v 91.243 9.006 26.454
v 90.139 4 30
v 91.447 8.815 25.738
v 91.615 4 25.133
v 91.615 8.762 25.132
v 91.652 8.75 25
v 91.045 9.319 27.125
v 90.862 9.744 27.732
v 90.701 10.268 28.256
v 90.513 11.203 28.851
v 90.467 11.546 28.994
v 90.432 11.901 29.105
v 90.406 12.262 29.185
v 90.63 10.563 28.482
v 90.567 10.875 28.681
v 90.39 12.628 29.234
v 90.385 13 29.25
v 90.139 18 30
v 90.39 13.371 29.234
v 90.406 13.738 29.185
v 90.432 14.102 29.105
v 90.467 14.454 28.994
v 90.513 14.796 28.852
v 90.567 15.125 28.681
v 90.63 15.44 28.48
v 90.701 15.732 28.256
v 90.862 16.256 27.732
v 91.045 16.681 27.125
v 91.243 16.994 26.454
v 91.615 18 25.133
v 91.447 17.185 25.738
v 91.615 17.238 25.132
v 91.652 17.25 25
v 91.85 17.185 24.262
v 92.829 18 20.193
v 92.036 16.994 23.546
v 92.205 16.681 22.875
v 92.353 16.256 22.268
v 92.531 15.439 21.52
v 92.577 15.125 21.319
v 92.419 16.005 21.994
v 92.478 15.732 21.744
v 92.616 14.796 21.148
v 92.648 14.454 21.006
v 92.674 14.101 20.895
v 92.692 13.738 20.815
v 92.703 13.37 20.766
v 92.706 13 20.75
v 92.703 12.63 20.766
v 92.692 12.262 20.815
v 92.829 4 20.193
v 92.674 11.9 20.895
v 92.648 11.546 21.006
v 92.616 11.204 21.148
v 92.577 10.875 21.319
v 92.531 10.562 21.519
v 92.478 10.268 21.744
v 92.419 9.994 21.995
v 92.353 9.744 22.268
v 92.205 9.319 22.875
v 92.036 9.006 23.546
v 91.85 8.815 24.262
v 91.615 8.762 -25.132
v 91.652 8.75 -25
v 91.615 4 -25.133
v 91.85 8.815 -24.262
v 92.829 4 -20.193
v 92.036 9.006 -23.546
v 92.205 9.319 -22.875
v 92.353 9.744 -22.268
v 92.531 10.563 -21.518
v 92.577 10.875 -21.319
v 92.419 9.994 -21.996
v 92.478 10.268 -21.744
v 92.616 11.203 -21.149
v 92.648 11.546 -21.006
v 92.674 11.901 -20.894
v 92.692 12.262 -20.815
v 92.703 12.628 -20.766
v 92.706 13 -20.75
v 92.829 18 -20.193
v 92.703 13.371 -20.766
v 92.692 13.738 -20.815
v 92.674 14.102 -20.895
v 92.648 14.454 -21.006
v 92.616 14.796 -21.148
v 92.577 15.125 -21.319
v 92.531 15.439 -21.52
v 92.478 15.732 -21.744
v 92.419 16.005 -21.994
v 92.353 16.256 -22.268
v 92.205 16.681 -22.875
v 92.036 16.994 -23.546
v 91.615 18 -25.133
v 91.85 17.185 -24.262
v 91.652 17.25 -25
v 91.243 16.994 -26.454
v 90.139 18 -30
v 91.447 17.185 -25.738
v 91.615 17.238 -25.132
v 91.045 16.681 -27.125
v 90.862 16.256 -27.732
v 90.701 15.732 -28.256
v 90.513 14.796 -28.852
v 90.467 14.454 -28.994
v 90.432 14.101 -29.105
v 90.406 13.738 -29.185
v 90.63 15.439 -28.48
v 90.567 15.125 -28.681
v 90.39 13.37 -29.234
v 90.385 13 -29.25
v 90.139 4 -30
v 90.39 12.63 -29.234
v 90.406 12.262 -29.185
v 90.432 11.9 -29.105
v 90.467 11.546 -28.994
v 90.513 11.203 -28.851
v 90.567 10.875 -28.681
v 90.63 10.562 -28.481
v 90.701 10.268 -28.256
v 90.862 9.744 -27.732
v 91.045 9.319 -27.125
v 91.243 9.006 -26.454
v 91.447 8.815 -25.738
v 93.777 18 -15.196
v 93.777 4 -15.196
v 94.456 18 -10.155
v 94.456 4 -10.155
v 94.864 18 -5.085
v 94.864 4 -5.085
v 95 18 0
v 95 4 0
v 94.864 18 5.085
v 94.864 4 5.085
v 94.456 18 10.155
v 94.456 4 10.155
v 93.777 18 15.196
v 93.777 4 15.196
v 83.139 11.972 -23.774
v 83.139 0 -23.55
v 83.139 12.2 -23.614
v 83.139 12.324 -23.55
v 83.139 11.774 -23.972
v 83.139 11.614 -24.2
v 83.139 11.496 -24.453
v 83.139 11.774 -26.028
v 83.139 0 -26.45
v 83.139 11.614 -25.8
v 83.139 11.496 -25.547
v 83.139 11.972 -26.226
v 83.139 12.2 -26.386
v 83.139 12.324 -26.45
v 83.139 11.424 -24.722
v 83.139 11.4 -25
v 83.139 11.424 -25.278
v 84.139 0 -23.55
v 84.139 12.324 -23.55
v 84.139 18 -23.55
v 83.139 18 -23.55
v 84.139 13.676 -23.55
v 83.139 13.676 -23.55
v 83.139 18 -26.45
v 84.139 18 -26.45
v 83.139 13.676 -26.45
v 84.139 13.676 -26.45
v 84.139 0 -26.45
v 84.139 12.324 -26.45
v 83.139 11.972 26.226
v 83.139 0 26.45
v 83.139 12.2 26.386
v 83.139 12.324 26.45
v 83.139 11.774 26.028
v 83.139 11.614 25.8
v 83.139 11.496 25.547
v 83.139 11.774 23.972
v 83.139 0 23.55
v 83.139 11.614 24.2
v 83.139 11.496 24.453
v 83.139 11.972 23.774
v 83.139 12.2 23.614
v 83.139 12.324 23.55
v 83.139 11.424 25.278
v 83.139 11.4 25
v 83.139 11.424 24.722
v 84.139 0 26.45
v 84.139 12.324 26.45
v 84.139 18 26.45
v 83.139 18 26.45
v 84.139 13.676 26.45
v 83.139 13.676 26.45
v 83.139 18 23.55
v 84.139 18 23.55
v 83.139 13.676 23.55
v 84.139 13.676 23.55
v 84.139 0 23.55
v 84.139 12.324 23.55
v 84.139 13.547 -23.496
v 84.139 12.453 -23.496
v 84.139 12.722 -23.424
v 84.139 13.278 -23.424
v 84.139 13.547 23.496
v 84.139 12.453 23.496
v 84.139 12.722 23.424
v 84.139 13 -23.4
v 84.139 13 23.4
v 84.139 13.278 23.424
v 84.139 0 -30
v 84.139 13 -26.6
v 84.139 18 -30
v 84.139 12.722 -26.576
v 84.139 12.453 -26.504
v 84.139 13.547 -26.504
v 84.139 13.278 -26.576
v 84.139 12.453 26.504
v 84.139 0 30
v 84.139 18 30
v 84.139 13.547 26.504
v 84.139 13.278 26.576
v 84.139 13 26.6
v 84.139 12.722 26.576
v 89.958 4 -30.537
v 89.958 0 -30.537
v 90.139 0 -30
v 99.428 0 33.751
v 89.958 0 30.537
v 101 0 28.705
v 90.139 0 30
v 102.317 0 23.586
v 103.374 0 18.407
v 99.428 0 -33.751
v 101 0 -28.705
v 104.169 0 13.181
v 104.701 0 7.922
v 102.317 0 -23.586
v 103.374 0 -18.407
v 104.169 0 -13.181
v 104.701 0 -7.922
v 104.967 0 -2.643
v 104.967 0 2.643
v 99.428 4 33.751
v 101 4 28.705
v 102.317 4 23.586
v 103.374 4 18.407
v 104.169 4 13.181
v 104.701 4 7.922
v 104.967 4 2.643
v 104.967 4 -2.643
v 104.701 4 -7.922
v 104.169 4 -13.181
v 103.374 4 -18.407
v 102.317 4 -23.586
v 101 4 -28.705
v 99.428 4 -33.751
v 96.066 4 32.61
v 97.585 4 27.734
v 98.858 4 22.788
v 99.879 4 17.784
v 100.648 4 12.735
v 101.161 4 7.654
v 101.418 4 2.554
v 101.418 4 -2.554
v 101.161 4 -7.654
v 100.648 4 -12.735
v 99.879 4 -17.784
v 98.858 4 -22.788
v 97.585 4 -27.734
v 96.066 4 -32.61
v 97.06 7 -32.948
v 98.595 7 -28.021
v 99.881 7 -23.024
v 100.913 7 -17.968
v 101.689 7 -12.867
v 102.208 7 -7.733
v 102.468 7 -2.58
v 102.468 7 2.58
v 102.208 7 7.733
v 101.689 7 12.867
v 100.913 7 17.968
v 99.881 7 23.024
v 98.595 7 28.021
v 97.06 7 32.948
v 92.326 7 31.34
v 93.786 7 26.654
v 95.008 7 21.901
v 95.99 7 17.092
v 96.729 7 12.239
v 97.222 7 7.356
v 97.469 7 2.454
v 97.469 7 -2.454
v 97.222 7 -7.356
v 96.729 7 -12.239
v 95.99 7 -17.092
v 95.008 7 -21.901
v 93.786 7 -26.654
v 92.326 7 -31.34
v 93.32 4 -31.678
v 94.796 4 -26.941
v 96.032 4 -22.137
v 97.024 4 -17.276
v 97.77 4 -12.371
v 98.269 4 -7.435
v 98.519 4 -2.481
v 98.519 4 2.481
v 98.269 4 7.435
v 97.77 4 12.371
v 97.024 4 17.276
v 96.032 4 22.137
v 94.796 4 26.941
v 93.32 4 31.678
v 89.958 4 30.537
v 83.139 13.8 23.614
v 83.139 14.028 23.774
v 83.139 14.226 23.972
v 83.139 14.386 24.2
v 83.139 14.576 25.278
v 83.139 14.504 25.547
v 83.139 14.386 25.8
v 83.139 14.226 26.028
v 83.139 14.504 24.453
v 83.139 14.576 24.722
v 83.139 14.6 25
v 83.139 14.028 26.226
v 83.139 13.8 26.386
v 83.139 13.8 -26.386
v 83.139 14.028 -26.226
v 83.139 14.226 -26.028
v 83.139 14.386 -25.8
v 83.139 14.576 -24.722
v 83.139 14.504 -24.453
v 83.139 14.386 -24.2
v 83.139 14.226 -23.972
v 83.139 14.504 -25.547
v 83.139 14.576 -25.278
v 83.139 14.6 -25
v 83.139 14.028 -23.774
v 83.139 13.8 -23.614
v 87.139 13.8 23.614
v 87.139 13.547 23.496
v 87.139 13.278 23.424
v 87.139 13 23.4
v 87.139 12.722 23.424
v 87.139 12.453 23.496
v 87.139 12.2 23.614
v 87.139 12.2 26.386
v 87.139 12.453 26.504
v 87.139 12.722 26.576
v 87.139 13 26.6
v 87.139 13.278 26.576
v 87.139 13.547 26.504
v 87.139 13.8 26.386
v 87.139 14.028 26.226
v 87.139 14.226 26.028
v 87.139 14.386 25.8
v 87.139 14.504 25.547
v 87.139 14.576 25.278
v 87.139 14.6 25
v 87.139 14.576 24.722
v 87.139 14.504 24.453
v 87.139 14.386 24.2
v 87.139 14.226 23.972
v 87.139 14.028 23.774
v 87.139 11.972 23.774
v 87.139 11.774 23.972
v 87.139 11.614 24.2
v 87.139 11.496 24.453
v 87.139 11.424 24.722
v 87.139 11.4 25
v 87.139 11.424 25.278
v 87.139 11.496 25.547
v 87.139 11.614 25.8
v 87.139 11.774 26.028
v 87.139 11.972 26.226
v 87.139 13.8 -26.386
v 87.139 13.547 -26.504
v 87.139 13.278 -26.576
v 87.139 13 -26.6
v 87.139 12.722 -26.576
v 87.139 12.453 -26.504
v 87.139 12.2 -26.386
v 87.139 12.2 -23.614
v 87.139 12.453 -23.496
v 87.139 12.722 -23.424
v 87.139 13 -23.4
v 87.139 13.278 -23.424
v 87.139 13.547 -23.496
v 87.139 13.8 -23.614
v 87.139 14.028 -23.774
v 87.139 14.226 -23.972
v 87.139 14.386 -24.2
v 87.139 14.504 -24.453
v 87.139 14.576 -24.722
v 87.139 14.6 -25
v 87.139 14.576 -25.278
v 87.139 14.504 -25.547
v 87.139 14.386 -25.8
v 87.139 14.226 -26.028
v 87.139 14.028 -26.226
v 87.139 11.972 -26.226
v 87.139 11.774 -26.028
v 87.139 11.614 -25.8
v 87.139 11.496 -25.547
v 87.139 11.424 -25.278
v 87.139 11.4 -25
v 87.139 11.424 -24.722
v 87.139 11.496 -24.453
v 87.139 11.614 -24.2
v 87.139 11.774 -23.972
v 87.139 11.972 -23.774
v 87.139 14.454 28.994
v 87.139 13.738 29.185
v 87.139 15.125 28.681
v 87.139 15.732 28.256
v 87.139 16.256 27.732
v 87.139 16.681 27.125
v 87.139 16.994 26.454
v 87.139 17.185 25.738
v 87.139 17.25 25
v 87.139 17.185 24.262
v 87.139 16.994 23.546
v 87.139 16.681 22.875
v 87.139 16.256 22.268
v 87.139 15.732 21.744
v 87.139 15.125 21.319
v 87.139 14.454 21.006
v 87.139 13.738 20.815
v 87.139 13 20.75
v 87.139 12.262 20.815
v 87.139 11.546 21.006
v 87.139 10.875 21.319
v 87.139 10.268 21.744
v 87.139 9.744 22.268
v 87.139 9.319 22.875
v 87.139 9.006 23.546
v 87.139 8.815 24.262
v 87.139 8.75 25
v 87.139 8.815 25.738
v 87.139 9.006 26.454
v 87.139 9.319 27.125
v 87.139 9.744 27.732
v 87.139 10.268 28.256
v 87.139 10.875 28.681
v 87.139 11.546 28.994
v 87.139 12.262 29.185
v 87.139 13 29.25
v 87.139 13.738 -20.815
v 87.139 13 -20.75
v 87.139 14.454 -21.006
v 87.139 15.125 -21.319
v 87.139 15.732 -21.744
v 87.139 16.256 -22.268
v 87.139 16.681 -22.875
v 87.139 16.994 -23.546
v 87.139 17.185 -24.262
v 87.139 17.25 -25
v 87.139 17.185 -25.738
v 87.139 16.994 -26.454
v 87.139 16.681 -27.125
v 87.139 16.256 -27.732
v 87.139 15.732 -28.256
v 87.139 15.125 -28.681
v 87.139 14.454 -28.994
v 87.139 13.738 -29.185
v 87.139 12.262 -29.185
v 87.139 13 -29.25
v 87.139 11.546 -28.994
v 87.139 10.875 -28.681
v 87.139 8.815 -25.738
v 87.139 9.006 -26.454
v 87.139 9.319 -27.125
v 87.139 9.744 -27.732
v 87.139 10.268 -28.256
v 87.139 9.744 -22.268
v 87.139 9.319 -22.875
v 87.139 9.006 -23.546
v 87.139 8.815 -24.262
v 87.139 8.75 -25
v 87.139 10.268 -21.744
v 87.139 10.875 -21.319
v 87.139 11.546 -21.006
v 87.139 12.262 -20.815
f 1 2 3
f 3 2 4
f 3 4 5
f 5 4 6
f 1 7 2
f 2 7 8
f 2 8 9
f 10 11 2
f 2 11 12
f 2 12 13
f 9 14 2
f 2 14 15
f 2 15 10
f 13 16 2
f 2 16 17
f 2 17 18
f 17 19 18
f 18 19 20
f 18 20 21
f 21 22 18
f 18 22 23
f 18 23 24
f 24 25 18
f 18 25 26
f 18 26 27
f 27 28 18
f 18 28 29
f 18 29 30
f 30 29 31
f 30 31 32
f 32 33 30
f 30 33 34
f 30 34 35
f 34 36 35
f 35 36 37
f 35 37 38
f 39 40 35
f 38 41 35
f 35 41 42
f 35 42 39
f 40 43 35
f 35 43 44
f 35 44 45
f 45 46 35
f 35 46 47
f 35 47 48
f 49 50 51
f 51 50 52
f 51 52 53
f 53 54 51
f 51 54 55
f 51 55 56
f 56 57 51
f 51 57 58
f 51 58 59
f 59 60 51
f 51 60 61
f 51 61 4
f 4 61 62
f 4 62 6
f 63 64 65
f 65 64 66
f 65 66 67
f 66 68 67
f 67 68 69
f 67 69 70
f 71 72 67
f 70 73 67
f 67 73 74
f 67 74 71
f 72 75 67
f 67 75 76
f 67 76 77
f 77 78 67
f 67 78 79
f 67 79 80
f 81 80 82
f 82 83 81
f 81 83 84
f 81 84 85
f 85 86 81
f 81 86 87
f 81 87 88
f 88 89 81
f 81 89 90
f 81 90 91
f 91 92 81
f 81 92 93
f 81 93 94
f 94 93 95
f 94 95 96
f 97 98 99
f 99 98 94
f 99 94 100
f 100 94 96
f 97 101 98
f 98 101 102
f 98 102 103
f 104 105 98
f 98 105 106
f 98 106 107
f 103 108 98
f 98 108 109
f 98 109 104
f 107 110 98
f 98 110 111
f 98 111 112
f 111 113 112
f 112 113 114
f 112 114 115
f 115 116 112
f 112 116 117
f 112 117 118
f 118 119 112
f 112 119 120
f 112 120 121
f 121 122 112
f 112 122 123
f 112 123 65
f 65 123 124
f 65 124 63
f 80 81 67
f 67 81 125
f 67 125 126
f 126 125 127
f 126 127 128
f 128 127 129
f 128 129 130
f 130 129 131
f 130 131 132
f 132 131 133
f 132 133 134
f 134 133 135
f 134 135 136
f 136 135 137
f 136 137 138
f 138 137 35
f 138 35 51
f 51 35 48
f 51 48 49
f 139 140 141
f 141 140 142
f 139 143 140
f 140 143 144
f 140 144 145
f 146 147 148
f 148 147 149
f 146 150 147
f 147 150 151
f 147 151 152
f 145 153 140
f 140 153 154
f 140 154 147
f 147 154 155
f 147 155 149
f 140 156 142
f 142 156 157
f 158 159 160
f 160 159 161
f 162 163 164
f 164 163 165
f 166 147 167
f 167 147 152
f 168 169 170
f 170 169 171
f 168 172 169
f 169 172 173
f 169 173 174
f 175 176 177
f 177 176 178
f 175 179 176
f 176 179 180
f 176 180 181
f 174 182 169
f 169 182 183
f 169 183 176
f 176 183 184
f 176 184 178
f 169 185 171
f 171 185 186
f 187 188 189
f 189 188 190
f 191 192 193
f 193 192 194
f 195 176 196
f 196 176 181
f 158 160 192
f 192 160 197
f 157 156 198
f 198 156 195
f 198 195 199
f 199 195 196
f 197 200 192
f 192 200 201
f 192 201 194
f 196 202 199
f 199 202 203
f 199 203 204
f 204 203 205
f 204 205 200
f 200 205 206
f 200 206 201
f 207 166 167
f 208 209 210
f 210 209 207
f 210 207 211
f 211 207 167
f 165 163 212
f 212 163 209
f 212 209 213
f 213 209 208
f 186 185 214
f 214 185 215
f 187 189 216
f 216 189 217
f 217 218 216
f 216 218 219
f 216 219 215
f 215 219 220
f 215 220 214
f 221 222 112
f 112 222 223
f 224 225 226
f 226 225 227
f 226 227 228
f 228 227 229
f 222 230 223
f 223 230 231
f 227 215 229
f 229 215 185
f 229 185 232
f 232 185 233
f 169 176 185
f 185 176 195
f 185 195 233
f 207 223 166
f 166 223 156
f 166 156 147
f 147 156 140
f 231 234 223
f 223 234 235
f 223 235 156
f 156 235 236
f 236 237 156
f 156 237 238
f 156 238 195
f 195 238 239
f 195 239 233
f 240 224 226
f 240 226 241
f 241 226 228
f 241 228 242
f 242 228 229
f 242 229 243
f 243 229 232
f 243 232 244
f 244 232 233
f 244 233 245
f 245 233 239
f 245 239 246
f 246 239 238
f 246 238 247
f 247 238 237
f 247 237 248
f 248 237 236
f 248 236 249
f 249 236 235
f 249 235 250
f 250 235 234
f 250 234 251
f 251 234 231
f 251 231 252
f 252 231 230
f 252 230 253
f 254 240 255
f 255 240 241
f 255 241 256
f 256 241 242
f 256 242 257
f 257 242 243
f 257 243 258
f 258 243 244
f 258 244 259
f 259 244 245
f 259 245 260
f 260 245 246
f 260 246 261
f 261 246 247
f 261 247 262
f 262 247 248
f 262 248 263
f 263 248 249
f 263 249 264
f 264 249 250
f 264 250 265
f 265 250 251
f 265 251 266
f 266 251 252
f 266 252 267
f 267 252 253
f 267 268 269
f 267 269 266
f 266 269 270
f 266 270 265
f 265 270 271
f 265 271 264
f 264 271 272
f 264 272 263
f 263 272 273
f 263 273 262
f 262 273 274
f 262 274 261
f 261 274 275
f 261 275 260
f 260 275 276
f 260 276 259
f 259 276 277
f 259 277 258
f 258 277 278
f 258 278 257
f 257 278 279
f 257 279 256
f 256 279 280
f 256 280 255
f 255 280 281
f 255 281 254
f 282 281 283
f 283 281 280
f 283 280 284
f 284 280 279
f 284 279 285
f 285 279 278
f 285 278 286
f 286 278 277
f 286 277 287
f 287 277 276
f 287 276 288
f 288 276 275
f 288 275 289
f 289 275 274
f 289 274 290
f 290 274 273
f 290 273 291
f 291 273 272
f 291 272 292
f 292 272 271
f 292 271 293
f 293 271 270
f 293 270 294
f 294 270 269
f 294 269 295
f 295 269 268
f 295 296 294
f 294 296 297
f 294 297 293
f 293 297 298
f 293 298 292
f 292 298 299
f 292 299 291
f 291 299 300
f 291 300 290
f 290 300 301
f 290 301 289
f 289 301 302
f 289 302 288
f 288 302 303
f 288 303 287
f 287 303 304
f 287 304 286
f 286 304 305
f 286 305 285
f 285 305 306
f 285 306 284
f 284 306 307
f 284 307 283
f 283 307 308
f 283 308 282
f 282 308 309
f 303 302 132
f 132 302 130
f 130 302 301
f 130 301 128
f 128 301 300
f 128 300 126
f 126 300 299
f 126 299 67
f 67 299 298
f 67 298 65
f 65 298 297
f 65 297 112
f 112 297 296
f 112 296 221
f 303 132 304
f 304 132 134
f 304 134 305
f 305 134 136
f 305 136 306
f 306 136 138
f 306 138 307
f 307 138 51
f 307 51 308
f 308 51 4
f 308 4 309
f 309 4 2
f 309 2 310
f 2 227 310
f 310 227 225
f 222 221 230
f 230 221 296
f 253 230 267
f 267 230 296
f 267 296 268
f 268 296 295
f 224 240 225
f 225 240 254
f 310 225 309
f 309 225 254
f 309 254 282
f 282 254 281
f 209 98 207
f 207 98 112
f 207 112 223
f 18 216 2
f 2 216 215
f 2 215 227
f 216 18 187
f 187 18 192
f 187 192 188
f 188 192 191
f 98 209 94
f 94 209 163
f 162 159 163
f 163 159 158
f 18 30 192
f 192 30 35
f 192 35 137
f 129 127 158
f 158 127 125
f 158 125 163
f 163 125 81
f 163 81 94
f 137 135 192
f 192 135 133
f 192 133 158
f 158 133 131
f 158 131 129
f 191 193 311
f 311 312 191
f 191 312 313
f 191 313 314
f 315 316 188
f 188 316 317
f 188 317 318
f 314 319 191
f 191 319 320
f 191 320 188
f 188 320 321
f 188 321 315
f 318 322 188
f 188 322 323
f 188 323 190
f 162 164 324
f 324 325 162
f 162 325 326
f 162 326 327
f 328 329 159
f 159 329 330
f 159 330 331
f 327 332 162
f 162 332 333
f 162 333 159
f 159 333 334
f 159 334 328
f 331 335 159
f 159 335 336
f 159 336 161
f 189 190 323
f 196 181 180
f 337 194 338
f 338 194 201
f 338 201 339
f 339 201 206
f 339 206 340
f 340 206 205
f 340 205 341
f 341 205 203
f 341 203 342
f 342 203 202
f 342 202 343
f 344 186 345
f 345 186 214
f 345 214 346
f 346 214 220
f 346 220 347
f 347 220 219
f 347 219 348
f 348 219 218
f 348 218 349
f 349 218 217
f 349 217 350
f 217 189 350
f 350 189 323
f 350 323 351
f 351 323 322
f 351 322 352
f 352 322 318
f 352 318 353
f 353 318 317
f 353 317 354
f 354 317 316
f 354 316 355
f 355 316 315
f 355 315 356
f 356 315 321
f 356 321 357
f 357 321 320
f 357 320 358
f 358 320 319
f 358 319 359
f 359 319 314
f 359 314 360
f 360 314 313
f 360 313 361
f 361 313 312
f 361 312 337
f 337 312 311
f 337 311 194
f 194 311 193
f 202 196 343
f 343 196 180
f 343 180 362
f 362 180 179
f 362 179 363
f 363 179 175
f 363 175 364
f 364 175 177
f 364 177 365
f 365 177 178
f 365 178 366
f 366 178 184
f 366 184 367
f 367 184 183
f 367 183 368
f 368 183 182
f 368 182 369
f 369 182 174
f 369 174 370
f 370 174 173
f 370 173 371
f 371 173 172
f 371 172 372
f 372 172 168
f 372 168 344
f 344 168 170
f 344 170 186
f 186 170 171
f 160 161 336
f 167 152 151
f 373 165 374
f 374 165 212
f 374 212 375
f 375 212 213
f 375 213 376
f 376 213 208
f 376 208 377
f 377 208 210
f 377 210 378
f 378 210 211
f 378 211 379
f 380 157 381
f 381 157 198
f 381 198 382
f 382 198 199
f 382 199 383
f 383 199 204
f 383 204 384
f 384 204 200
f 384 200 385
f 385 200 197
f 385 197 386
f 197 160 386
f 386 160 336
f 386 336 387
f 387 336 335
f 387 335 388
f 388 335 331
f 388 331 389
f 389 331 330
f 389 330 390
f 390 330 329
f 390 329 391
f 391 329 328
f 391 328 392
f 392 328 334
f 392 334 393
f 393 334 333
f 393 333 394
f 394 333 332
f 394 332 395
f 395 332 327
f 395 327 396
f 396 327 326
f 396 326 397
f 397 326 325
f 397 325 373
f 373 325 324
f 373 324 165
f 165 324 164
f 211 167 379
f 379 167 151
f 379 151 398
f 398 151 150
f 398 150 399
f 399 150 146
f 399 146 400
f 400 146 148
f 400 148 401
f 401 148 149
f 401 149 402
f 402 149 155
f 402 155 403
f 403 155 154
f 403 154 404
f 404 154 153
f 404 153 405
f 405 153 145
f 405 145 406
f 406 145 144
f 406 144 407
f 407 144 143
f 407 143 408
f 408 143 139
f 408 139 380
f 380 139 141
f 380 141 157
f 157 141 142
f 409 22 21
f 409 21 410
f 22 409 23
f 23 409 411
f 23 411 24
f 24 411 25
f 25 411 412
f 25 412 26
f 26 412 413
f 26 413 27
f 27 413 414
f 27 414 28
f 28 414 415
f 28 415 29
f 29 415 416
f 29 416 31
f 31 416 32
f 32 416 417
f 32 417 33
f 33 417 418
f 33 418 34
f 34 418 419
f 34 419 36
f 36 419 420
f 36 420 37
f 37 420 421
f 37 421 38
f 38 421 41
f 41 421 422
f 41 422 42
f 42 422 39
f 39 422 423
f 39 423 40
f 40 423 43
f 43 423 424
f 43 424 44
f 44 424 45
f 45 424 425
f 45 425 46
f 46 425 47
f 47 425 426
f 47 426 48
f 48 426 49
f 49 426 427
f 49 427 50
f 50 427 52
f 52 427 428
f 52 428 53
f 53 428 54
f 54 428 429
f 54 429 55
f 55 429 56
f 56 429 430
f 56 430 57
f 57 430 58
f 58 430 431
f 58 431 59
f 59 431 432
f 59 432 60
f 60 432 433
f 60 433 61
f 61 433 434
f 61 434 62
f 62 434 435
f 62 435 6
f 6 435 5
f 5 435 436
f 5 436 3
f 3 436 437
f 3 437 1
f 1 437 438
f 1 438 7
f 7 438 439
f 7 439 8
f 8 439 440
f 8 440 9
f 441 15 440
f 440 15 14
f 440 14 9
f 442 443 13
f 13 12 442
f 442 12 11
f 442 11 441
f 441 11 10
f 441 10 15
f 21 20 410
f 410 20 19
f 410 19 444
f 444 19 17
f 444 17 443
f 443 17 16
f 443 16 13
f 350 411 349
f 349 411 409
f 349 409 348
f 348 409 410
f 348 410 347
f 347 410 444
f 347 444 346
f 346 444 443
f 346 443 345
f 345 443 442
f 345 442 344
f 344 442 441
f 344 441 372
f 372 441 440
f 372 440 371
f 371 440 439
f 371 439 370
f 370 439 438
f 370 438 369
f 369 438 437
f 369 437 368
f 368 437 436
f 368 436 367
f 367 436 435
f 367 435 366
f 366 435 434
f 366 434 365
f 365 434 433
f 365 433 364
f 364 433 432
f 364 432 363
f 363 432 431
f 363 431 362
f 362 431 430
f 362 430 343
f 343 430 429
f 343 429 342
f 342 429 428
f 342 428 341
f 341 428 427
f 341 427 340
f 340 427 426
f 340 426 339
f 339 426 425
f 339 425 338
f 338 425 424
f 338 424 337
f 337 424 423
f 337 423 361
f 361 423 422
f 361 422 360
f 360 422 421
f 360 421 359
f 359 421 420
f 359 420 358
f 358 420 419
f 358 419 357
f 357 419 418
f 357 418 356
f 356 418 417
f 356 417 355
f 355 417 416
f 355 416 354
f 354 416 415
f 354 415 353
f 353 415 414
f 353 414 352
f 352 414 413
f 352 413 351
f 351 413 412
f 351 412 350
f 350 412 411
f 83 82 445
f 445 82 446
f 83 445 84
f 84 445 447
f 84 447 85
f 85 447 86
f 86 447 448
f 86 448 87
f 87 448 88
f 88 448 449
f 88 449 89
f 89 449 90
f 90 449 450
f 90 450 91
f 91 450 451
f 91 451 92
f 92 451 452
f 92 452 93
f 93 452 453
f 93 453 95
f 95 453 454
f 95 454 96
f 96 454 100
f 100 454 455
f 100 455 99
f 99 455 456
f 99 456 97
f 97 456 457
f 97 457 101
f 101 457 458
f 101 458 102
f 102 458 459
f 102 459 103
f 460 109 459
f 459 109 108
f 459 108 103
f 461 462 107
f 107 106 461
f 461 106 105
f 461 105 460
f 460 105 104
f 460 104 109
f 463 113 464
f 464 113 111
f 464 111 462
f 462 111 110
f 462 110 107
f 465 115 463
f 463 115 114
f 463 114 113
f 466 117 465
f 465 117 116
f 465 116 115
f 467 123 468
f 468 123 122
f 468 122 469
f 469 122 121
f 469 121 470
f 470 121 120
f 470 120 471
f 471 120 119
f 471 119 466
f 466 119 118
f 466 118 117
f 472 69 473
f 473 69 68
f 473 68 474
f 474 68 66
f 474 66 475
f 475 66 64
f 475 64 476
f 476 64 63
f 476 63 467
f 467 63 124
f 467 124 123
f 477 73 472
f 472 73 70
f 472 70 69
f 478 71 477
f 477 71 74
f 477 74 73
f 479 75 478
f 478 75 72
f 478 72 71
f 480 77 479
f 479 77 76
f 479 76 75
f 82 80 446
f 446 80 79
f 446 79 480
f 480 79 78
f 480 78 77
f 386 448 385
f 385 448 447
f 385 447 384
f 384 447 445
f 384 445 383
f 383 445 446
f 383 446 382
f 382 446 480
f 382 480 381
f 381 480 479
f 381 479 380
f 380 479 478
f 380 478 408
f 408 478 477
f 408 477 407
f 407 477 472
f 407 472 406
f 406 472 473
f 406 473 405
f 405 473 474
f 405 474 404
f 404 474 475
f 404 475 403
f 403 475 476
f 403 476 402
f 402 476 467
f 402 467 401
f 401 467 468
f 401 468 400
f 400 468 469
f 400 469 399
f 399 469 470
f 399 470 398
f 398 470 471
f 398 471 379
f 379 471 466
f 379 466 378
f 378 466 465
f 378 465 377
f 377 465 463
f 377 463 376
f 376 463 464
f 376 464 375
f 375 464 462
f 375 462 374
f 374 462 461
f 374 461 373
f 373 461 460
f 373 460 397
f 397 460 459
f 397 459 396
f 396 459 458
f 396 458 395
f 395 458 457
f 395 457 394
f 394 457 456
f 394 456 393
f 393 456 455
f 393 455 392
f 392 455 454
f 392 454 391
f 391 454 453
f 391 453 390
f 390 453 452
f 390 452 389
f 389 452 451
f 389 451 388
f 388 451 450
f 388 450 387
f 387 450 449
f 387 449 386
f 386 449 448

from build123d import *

# Parameters (mm, degrees)
MAIN_ANGLE             = 37.5
SUPPORT_DEPTH          = 18
SKETCH6_W              = 1
SKETCH6_H              = 2.9
MAKERBEAMSUPPORT_DEPTH = 18
SKETCH7_R              = 1.6
HOLESMAKERBEAM_DEPTH   = 22.861218113
SKETCH8_R              = 4.25
CUT_EXTRUDE1_DEPTH     = 7


with BuildPart() as part:
    # Sketch1 → Main (revolve, symmetric)
    with BuildSketch(Plane.XY) as main_sk:
        Polygon((105, 0), (105, 4), (101.45, 4), (102.5, 7), (97.5, 7), (98.55, 4), (95, 4), (95, 0), align=None)
    revolve(axis=Axis((0, -0.284703924, 0), (0, 1, 0)), revolution_arc=MAIN_ANGLE / 2)
    revolve(main_sk.sketch, axis=Axis((0, -0.284703924, 0), (0, -1, 0)), revolution_arc=MAIN_ANGLE / 2)

    # Sketch2 → Support (add)
    with BuildSketch(Plane(origin=(0, 0, 0), x_dir=(-1, 0, 0), z_dir=(0, -1, 0))):
        with BuildLine():
            Line((-90.138781887, -30), (-84.138781887, -30))
            Line((-84.138781887, -30), (-84.138781887, 30))
            Line((-84.138781887, 30), (-90.138781887, 30))
            ThreePointArc((-90.138781887, 30), (-95, 0), (-90.138781887, -30))
        make_face()
    extrude(amount=-SUPPORT_DEPTH)

    # Sketch6 → MakerBeamSupport (add)
    with BuildSketch(Plane(origin=(0, 0, 0), x_dir=(1, 0, 0), z_dir=(0, 1, 0))):
        with Locations((83.638781887, -25)):
            Rectangle(SKETCH6_W, SKETCH6_H)
        with Locations((83.638781887, 25)):
            Rectangle(SKETCH6_W, SKETCH6_H)
    extrude(amount=MAKERBEAMSUPPORT_DEPTH)

    # Sketch7 → HolesMakerBeam (cut, through all)
    with BuildSketch(Plane(origin=(83.138781887, 0, 0), x_dir=(0, 0, -1), z_dir=(1, 0, 0))):
        with Locations((-25, 13)):
            Circle(SKETCH7_R)
        with Locations((25, 13)):
            Circle(SKETCH7_R)
    extrude(amount=HOLESMAKERBEAM_DEPTH, mode=Mode.SUBTRACT)

    # Sketch8 → Cut-Extrude1 (cut)
    with BuildSketch(Plane.ZY.offset(-87.138781887)):
        with Locations((25, 13)):
            Circle(SKETCH8_R)
        with Locations((-25, 13)):
            Circle(SKETCH8_R)
    extrude(amount=-CUT_EXTRUDE1_DEPTH, mode=Mode.SUBTRACT)


solid = part.part
